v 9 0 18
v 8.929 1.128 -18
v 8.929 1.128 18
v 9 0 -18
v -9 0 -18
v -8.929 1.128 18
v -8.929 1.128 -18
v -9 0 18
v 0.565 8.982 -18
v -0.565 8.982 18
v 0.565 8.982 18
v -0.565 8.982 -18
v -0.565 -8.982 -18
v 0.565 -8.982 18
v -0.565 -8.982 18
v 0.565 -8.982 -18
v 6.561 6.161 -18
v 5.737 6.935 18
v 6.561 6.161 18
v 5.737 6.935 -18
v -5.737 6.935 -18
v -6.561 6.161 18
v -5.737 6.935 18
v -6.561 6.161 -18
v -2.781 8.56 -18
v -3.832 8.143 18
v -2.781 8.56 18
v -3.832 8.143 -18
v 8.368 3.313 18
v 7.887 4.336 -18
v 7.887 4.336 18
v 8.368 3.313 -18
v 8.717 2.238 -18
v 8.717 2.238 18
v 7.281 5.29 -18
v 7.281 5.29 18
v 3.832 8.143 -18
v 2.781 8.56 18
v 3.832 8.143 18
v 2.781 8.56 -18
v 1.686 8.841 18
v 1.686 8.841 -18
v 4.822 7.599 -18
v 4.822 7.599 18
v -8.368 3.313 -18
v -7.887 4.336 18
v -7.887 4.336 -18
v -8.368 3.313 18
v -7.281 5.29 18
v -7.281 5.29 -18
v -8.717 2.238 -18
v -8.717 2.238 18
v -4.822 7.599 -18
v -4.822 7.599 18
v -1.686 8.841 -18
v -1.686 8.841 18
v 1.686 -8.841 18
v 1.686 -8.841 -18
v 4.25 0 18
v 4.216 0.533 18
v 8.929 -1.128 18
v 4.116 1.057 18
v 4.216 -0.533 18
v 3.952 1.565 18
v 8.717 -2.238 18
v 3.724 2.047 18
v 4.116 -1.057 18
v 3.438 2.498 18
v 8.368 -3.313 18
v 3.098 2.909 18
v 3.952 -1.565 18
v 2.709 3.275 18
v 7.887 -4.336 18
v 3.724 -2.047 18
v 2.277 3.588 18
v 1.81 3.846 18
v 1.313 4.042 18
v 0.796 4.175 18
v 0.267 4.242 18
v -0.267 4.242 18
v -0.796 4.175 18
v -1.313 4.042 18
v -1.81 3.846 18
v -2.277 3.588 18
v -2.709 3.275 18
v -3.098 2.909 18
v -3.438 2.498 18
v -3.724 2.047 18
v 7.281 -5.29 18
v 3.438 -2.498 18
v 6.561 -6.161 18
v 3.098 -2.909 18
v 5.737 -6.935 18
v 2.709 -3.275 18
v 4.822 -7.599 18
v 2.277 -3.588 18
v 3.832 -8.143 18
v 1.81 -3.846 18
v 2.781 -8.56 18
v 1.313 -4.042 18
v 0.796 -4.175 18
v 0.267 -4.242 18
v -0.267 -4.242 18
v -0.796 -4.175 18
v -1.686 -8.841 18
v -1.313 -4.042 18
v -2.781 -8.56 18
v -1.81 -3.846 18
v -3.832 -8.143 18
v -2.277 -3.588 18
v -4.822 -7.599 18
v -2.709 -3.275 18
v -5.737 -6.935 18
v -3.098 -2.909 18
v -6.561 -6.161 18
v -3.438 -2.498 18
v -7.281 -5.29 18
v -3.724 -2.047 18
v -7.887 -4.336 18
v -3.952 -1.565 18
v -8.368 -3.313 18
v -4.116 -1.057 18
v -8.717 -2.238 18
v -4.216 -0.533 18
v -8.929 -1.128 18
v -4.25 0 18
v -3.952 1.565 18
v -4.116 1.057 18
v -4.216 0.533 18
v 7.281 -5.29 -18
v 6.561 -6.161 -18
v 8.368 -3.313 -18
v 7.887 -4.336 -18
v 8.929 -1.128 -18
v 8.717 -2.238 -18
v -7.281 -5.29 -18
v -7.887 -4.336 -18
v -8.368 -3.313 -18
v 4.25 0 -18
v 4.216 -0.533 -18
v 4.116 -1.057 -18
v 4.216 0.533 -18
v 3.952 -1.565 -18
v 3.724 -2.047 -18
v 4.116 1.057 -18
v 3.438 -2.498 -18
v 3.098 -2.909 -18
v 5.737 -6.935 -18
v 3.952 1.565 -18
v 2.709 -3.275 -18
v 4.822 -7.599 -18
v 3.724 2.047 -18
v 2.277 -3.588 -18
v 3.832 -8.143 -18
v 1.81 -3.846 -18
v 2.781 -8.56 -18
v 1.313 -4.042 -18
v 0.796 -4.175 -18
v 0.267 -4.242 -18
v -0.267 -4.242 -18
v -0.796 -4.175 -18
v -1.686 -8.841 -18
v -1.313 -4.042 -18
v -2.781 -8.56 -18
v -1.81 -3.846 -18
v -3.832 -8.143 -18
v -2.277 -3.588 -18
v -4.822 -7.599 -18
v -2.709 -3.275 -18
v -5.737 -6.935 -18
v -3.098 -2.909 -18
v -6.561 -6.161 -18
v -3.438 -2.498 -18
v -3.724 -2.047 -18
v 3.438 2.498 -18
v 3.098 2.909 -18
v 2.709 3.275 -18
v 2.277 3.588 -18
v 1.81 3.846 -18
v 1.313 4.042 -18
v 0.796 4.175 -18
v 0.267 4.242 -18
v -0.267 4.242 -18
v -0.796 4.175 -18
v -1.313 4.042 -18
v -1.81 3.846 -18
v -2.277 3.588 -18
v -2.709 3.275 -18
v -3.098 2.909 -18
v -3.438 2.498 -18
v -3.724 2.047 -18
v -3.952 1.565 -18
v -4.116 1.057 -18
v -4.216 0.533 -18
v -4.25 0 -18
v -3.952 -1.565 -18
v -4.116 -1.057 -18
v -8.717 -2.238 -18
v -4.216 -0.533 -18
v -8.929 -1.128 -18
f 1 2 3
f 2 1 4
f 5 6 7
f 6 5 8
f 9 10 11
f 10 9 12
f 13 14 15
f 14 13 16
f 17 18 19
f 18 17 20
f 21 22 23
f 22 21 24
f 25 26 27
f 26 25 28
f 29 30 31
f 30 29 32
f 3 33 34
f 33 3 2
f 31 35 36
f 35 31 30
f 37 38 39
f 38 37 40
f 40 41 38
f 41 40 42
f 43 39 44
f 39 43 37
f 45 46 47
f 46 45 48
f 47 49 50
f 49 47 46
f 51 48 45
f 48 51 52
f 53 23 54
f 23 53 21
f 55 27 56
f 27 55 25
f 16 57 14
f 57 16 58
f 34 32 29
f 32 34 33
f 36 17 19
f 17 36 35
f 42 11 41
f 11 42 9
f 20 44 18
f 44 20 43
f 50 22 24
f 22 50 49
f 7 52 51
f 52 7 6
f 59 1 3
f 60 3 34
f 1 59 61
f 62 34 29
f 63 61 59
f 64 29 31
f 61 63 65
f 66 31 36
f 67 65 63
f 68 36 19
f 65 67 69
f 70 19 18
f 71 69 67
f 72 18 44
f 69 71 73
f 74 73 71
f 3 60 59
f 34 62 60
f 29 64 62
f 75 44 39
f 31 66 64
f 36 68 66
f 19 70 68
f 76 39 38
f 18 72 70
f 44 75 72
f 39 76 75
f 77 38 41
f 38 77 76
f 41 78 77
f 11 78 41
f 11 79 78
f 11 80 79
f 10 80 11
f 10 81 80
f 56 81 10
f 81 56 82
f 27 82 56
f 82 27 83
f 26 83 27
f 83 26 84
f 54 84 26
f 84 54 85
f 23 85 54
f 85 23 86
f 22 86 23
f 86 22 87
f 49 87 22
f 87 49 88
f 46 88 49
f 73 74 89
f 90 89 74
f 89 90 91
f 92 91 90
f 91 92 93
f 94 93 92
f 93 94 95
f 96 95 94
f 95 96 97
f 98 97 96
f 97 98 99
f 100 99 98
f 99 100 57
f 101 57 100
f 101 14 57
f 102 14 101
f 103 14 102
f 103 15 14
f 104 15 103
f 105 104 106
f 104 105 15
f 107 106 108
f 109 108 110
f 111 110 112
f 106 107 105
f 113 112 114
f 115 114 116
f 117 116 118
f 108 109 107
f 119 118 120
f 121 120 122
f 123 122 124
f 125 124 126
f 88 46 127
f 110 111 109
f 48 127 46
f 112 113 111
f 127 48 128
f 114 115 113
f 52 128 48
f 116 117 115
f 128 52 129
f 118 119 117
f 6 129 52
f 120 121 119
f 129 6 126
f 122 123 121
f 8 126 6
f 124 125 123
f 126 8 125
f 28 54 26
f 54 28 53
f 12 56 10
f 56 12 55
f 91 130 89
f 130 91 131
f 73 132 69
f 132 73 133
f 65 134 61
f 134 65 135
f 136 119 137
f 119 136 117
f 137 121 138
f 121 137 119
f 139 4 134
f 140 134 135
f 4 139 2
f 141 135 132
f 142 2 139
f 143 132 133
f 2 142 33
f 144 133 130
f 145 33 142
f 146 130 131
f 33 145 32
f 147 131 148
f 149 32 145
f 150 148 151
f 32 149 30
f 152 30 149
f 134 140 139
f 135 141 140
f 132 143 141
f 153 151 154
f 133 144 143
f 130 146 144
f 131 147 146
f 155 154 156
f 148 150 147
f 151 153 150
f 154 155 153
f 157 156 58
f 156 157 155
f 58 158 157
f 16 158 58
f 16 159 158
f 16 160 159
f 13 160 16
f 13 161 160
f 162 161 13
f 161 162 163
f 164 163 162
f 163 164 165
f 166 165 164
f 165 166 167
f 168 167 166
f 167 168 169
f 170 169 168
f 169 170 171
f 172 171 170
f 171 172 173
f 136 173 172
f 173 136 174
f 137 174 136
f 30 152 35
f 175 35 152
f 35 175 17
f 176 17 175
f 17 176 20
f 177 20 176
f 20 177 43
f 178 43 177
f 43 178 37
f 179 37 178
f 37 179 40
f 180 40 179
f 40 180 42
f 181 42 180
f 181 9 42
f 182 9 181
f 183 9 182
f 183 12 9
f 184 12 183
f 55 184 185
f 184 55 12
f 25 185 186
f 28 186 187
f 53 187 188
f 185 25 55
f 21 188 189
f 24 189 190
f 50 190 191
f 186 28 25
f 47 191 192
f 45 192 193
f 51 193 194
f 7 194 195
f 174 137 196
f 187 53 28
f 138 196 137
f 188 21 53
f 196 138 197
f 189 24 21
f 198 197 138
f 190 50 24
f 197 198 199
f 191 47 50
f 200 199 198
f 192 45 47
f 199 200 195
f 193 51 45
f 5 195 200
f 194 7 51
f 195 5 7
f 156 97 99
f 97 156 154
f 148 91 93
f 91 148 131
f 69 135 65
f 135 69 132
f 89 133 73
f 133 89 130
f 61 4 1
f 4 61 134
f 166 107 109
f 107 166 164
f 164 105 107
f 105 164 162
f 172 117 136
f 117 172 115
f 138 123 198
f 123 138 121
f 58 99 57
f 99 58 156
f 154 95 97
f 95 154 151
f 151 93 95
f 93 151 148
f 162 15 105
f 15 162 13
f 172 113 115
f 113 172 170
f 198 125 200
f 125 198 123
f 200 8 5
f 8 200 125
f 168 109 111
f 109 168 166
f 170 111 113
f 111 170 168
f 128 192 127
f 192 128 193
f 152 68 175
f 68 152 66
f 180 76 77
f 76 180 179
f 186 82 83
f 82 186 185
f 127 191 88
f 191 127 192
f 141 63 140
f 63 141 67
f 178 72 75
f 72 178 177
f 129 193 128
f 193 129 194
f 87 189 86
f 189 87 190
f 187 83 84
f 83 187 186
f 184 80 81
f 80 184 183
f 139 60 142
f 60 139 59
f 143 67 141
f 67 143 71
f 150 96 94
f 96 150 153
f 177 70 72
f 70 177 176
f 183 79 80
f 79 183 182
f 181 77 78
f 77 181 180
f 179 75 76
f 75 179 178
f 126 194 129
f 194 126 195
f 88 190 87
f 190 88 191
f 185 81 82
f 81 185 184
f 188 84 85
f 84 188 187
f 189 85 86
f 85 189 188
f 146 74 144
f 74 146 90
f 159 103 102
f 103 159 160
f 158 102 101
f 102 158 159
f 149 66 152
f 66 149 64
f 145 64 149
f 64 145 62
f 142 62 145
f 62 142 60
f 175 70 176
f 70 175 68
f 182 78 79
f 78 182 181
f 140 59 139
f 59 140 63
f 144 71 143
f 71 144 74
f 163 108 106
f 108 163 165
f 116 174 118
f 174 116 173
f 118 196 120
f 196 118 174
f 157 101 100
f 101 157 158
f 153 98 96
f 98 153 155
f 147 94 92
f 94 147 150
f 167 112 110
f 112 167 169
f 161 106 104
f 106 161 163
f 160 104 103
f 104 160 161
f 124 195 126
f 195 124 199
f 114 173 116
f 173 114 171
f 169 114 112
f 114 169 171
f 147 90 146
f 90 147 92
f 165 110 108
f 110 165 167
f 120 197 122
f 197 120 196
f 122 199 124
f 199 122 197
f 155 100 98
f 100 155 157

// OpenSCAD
$fn = 50;


difference() {
	union() {
		translate(v = [0, 0, -18.0000000000]) {
			cylinder(h = 36, r = 9.0000000000);
		}
	}
	union() {
		translate(v = [0, 0, -100.0000000000]) {
			cylinder(h = 200, r = 4.2500000000);
		}
	}
}
